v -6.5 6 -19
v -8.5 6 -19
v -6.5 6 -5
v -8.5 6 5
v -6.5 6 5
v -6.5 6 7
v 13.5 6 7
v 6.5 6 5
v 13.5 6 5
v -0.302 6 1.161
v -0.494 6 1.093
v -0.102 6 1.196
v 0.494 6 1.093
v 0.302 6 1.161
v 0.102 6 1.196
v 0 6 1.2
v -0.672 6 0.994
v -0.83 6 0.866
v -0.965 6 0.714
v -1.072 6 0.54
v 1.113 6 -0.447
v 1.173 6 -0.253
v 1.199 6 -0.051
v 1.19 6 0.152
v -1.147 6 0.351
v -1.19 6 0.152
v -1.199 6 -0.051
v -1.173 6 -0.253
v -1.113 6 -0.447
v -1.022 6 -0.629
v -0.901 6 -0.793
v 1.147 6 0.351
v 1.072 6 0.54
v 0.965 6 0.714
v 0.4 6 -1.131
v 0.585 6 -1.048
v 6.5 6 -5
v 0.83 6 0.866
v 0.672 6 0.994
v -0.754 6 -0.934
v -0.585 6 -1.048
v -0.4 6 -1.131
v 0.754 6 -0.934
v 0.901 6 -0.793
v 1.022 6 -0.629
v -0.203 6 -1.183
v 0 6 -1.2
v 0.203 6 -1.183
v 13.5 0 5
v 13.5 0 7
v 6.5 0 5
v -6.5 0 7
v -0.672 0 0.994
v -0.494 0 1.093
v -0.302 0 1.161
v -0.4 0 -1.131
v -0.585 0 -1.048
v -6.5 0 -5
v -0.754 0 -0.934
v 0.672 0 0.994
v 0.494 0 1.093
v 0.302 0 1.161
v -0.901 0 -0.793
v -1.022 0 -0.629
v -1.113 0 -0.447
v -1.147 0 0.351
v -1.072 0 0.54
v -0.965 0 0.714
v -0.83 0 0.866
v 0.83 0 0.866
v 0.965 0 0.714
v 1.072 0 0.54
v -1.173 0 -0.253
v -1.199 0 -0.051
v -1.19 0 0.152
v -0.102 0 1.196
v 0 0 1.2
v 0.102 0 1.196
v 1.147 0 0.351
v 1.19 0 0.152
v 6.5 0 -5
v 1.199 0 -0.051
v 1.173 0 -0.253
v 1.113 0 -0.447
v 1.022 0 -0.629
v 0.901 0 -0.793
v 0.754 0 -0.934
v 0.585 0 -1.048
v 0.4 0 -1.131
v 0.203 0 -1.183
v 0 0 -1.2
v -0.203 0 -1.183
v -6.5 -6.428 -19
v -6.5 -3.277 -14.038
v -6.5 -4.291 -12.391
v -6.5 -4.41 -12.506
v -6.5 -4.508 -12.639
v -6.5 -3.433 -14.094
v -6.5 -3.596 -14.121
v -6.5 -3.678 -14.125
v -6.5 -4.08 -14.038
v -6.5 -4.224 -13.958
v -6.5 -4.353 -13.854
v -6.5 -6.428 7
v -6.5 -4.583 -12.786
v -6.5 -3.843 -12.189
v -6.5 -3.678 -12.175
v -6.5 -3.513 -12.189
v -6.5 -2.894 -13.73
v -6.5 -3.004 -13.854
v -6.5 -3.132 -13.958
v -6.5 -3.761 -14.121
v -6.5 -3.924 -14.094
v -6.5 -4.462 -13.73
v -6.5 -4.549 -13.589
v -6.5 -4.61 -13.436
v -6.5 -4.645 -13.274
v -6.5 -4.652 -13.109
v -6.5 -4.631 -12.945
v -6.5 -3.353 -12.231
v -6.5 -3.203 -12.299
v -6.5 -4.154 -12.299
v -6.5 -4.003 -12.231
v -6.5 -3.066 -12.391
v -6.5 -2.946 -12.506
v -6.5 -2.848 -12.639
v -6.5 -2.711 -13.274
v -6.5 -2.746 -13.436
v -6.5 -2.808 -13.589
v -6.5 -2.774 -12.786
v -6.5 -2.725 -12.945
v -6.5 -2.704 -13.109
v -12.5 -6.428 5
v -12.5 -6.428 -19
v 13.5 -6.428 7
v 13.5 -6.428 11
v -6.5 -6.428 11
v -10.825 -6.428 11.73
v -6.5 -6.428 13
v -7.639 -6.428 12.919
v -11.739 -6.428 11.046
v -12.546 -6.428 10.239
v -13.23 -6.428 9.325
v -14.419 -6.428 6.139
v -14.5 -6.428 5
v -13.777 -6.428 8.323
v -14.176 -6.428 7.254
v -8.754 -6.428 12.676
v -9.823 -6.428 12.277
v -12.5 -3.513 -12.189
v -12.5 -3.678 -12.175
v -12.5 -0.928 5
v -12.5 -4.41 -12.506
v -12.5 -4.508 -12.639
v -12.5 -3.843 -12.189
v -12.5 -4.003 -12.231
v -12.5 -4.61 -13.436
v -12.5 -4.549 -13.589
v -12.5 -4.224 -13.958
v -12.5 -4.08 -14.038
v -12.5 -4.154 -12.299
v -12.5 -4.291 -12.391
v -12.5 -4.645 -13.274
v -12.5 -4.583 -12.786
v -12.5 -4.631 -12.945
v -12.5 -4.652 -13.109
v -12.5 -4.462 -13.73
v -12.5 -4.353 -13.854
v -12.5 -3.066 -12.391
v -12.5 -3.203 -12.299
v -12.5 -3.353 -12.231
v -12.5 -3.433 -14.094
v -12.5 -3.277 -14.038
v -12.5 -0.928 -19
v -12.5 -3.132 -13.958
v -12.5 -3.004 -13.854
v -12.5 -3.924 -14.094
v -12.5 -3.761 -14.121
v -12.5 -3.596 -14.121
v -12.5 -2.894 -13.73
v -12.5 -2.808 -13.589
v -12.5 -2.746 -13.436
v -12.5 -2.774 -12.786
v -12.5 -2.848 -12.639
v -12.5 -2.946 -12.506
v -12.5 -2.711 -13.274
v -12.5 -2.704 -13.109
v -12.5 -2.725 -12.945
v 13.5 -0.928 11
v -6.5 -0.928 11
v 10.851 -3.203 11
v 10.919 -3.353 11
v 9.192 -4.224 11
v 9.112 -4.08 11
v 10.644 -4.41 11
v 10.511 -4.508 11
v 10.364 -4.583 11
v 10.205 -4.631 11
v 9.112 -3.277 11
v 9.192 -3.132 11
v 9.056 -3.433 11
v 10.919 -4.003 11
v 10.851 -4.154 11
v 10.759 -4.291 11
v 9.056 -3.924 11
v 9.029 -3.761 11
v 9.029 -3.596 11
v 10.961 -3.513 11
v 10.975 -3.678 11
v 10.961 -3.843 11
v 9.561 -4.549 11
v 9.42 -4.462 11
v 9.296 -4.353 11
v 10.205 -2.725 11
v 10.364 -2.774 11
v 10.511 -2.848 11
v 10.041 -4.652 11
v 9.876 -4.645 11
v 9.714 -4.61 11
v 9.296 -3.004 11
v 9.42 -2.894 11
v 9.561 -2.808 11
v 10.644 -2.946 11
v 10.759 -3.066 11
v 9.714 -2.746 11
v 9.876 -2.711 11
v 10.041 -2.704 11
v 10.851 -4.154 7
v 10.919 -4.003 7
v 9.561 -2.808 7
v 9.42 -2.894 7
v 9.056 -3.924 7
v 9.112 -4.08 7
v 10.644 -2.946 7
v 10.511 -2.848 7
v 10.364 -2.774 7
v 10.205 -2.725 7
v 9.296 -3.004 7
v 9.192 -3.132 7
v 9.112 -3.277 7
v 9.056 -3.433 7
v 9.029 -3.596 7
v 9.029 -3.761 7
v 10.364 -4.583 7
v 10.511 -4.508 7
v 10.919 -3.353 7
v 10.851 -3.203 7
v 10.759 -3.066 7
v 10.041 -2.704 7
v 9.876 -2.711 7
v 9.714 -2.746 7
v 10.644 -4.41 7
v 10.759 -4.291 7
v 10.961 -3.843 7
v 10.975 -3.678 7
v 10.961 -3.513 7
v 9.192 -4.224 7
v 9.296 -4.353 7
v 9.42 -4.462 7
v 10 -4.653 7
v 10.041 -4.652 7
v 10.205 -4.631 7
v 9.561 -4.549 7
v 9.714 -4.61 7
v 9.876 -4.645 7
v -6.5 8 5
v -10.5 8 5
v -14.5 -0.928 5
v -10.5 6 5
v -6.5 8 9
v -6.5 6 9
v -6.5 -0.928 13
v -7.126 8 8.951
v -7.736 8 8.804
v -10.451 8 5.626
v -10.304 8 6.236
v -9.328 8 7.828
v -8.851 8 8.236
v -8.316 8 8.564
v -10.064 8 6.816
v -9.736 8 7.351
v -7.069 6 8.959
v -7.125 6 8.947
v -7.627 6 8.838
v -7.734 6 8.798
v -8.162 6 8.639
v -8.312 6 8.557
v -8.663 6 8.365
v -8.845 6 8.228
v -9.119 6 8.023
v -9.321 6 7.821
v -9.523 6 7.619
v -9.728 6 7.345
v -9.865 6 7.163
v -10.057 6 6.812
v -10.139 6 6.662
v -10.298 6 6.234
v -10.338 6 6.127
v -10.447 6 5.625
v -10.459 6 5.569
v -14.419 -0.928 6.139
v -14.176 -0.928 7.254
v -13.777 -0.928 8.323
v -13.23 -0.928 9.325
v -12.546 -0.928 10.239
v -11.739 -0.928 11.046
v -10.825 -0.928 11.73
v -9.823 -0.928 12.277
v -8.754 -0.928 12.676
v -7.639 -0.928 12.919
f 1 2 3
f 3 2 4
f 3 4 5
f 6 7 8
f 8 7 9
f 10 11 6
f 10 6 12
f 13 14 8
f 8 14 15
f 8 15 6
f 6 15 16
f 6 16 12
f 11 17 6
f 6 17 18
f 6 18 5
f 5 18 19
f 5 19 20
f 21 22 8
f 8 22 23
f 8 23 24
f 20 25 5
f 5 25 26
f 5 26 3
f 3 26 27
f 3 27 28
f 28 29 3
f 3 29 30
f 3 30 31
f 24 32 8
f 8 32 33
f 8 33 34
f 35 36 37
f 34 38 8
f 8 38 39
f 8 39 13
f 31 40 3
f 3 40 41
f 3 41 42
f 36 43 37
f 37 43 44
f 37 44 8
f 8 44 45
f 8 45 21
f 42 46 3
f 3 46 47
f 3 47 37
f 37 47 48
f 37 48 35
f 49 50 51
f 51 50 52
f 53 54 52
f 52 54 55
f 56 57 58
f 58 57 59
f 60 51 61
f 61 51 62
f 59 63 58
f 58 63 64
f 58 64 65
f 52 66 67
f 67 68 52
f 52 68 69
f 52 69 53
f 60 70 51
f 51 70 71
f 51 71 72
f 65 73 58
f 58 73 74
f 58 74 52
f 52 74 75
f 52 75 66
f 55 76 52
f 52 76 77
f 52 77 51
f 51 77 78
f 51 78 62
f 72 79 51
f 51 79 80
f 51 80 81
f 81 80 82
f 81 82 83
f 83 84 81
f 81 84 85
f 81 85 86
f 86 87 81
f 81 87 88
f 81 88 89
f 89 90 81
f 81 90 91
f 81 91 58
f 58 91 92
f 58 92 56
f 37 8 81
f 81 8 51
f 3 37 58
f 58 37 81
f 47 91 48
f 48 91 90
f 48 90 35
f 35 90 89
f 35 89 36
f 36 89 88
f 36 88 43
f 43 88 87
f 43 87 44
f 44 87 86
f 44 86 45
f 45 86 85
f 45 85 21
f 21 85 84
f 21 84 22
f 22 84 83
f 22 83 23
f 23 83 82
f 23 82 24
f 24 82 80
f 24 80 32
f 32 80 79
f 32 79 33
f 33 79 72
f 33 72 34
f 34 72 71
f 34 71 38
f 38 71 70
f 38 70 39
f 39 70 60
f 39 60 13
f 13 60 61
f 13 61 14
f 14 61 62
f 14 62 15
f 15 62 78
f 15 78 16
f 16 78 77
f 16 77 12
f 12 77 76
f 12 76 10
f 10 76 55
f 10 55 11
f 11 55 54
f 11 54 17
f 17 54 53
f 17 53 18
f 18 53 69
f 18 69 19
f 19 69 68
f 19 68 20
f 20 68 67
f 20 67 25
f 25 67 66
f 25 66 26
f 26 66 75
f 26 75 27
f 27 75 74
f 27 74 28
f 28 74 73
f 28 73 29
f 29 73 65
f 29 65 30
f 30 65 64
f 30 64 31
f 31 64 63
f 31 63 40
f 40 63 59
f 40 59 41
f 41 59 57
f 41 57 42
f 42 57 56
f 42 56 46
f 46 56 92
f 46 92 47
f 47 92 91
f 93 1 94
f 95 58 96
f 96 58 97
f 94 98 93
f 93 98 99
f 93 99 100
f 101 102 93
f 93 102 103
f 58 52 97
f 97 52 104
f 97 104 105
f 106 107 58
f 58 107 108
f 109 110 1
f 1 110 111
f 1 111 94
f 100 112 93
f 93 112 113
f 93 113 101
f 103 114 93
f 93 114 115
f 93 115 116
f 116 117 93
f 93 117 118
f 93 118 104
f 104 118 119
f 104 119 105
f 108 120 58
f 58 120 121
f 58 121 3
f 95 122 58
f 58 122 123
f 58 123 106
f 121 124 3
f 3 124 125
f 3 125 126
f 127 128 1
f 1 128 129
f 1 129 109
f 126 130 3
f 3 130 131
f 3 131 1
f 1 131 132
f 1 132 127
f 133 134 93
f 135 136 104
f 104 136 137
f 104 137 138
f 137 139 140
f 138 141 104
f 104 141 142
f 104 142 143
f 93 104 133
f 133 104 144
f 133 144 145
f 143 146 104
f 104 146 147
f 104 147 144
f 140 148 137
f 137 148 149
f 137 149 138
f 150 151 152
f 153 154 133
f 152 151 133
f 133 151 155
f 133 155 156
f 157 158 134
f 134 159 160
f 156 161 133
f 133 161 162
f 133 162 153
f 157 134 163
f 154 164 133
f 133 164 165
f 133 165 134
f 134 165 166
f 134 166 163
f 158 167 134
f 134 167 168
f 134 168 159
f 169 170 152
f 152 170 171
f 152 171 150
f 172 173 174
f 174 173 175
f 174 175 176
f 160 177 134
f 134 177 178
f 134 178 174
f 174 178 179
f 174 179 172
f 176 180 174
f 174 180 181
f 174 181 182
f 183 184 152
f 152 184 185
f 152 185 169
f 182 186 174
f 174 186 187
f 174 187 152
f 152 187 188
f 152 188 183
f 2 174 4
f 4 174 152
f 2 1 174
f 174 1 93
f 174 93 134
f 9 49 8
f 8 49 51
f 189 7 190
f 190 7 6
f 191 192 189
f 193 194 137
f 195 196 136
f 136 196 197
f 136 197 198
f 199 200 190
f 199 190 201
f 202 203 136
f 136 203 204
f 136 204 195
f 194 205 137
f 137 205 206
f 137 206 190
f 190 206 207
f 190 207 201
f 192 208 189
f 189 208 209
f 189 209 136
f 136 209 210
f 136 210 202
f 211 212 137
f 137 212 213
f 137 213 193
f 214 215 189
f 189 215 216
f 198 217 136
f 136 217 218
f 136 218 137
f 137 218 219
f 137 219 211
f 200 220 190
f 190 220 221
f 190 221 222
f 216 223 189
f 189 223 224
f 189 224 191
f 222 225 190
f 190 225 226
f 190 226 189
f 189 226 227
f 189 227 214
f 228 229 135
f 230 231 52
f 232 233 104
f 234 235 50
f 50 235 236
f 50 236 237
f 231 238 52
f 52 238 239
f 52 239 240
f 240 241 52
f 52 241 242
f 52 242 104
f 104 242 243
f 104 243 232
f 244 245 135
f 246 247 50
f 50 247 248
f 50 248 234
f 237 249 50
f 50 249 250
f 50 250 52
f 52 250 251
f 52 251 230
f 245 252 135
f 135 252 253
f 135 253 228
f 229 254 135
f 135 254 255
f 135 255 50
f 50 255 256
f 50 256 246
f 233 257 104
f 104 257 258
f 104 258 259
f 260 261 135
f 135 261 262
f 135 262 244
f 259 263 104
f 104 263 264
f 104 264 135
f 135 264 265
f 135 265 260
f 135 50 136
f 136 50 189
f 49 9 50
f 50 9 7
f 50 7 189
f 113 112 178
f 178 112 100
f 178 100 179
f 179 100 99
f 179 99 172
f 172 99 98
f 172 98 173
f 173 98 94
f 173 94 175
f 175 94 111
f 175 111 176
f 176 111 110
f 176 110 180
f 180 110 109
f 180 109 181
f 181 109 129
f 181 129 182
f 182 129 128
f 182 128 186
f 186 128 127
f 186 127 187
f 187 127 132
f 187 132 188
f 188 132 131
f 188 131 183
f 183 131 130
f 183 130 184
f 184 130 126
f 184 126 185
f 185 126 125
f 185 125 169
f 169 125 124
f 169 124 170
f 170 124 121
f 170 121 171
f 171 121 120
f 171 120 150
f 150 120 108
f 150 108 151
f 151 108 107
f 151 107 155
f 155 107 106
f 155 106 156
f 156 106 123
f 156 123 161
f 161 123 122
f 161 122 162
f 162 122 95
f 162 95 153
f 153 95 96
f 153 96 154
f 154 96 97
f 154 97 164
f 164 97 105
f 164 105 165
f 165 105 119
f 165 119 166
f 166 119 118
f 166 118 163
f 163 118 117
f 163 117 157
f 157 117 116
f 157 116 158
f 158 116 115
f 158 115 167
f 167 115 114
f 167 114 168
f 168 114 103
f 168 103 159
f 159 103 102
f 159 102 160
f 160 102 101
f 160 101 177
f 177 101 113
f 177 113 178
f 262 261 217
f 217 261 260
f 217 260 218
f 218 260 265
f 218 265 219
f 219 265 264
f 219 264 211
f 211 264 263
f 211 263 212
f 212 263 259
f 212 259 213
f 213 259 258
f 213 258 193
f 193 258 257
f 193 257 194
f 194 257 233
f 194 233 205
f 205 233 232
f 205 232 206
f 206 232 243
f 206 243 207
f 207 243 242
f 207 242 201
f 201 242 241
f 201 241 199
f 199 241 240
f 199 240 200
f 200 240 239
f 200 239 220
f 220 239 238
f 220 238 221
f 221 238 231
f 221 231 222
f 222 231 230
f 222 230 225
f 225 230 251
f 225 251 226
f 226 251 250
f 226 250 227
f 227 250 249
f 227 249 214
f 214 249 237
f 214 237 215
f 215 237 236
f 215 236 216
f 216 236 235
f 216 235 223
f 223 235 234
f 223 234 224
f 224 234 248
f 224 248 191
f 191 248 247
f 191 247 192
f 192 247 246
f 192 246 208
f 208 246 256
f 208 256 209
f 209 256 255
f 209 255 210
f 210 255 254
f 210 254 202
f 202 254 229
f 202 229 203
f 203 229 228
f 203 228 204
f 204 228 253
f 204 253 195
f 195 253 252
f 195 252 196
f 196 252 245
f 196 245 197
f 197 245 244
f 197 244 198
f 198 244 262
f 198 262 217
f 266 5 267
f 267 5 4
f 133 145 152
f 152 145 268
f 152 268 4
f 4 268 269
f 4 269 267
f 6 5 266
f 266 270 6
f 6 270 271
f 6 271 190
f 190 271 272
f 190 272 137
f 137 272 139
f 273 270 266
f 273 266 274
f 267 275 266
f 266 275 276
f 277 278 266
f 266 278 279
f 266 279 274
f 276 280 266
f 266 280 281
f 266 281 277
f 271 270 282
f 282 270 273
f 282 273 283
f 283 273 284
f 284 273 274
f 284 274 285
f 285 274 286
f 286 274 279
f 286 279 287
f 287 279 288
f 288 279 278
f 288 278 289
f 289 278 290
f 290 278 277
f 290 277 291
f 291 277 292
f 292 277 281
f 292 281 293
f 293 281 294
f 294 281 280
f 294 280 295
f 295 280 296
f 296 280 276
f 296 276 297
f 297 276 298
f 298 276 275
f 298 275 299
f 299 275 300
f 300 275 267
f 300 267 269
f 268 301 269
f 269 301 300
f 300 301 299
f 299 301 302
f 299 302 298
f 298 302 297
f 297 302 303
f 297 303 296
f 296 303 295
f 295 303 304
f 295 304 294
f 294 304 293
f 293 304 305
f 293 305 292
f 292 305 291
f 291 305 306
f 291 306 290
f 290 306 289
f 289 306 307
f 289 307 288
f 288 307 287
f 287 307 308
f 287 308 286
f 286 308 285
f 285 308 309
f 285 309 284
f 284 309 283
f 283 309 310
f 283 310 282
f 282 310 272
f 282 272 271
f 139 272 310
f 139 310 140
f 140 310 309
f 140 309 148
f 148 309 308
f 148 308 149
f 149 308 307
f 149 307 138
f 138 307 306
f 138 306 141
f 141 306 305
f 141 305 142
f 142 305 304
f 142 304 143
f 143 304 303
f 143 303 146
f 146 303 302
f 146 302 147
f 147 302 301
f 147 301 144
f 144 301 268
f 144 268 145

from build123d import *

# Parameters (mm, degrees)
SKETCH_1_W               = 13
SKETCH_1_H               = 10
SKETCH_1_R               = 1.2
EXTRUDE_1_DEPTH          = 6
EXTRUDE_2_DEPTH          = 24
EXTRUDE_7_DEPTH          = 20
CUT_EXTRUDE_1_DEPTH      = 33.837810475
CUT_EXTRUDE_1_DEPTH_BACK = 33.837810475
SKETCH_5_R               = 0.975
SKETCH_6_R               = 0.975
CUT_EXTRUDE_2_DEPTH      = 34.519722504
SWEEP_1_ANGLE            = 90


# Read off the part's stored shape, not the designer's step: ｽｲｰﾌﾟ1
with BuildPart() as part:
    # ｽｹｯﾁ1 → ﾎﾞｽ - 押し出し1 (new body)
    with BuildSketch(Plane(origin=(0, 0, 0), x_dir=(1, 0, 0), z_dir=(0, 1, 0))):
        Rectangle(SKETCH_1_W, SKETCH_1_H)
        with Locations(Location((0, 0, 0), (0, 0, 270))):
            Circle(SKETCH_1_R, mode=Mode.SUBTRACT)
    extrude(amount=EXTRUDE_1_DEPTH)

    # ｽｹｯﾁ2 → ﾎﾞｽ - 押し出し2 (add)
    with BuildSketch(Plane.XY.offset(5)):
        Polygon((-6.5, 6), (-8.5, 6), (-12.5, -0.92820323), (-12.5, -6.42820323), (-6.5, -6.42820323), align=None)
    extrude(amount=-EXTRUDE_2_DEPTH)

    # ｽｹｯﾁ4 → ﾎﾞｽ - 押し出し7 (add)
    with BuildSketch(Plane(origin=(-6.5, 0, 0), x_dir=(0, 0, -1), z_dir=(1, 0, 0))):
        Polygon((-5, 6), (-7, 6), (-11, -0.92820323), (-11, -6.42820323), (-7, -6.42820323), (-7, 0), (-5, 0), align=None)
    extrude(amount=EXTRUDE_7_DEPTH)

    # ｽｹｯﾁ5 → ｶｯﾄ - 押し出し1 (cut, two sides: drawn at the far end of the back side and taken through both)
    with BuildSketch(Plane.ZY.offset(12.5).offset(-CUT_EXTRUDE_1_DEPTH_BACK)):
        with Locations((-13.15, -3.67820323)):
            Circle(SKETCH_5_R)
    extrude(amount=CUT_EXTRUDE_1_DEPTH + CUT_EXTRUDE_1_DEPTH_BACK, mode=Mode.SUBTRACT)

    # ｽｹｯﾁ6 → ｶｯﾄ - 押し出し2 (cut, through all)
    with BuildSketch(Plane.XY.offset(11)):
        with Locations((10, -3.67820323)):
            Circle(SKETCH_6_R)
    extrude(amount=-CUT_EXTRUDE_2_DEPTH, mode=Mode.SUBTRACT)

    # ｽｲｰﾌﾟ1 outline → ｽｲｰﾌﾟ1 (revolve)
    with BuildSketch(Plane(origin=(-6.5, 0, 5), x_dir=(-1, 0, 0), z_dir=(0, 0, -1))):
        Polygon((0, 8), (0, -6.42820323), (8, -6.42820323), (8, -0.92820323), (4, 6), (4, 8), align=None)
    revolve(axis=Axis((-6.5, 0, 5), (0, 1, 0)), revolution_arc=SWEEP_1_ANGLE)


solid = part.part
